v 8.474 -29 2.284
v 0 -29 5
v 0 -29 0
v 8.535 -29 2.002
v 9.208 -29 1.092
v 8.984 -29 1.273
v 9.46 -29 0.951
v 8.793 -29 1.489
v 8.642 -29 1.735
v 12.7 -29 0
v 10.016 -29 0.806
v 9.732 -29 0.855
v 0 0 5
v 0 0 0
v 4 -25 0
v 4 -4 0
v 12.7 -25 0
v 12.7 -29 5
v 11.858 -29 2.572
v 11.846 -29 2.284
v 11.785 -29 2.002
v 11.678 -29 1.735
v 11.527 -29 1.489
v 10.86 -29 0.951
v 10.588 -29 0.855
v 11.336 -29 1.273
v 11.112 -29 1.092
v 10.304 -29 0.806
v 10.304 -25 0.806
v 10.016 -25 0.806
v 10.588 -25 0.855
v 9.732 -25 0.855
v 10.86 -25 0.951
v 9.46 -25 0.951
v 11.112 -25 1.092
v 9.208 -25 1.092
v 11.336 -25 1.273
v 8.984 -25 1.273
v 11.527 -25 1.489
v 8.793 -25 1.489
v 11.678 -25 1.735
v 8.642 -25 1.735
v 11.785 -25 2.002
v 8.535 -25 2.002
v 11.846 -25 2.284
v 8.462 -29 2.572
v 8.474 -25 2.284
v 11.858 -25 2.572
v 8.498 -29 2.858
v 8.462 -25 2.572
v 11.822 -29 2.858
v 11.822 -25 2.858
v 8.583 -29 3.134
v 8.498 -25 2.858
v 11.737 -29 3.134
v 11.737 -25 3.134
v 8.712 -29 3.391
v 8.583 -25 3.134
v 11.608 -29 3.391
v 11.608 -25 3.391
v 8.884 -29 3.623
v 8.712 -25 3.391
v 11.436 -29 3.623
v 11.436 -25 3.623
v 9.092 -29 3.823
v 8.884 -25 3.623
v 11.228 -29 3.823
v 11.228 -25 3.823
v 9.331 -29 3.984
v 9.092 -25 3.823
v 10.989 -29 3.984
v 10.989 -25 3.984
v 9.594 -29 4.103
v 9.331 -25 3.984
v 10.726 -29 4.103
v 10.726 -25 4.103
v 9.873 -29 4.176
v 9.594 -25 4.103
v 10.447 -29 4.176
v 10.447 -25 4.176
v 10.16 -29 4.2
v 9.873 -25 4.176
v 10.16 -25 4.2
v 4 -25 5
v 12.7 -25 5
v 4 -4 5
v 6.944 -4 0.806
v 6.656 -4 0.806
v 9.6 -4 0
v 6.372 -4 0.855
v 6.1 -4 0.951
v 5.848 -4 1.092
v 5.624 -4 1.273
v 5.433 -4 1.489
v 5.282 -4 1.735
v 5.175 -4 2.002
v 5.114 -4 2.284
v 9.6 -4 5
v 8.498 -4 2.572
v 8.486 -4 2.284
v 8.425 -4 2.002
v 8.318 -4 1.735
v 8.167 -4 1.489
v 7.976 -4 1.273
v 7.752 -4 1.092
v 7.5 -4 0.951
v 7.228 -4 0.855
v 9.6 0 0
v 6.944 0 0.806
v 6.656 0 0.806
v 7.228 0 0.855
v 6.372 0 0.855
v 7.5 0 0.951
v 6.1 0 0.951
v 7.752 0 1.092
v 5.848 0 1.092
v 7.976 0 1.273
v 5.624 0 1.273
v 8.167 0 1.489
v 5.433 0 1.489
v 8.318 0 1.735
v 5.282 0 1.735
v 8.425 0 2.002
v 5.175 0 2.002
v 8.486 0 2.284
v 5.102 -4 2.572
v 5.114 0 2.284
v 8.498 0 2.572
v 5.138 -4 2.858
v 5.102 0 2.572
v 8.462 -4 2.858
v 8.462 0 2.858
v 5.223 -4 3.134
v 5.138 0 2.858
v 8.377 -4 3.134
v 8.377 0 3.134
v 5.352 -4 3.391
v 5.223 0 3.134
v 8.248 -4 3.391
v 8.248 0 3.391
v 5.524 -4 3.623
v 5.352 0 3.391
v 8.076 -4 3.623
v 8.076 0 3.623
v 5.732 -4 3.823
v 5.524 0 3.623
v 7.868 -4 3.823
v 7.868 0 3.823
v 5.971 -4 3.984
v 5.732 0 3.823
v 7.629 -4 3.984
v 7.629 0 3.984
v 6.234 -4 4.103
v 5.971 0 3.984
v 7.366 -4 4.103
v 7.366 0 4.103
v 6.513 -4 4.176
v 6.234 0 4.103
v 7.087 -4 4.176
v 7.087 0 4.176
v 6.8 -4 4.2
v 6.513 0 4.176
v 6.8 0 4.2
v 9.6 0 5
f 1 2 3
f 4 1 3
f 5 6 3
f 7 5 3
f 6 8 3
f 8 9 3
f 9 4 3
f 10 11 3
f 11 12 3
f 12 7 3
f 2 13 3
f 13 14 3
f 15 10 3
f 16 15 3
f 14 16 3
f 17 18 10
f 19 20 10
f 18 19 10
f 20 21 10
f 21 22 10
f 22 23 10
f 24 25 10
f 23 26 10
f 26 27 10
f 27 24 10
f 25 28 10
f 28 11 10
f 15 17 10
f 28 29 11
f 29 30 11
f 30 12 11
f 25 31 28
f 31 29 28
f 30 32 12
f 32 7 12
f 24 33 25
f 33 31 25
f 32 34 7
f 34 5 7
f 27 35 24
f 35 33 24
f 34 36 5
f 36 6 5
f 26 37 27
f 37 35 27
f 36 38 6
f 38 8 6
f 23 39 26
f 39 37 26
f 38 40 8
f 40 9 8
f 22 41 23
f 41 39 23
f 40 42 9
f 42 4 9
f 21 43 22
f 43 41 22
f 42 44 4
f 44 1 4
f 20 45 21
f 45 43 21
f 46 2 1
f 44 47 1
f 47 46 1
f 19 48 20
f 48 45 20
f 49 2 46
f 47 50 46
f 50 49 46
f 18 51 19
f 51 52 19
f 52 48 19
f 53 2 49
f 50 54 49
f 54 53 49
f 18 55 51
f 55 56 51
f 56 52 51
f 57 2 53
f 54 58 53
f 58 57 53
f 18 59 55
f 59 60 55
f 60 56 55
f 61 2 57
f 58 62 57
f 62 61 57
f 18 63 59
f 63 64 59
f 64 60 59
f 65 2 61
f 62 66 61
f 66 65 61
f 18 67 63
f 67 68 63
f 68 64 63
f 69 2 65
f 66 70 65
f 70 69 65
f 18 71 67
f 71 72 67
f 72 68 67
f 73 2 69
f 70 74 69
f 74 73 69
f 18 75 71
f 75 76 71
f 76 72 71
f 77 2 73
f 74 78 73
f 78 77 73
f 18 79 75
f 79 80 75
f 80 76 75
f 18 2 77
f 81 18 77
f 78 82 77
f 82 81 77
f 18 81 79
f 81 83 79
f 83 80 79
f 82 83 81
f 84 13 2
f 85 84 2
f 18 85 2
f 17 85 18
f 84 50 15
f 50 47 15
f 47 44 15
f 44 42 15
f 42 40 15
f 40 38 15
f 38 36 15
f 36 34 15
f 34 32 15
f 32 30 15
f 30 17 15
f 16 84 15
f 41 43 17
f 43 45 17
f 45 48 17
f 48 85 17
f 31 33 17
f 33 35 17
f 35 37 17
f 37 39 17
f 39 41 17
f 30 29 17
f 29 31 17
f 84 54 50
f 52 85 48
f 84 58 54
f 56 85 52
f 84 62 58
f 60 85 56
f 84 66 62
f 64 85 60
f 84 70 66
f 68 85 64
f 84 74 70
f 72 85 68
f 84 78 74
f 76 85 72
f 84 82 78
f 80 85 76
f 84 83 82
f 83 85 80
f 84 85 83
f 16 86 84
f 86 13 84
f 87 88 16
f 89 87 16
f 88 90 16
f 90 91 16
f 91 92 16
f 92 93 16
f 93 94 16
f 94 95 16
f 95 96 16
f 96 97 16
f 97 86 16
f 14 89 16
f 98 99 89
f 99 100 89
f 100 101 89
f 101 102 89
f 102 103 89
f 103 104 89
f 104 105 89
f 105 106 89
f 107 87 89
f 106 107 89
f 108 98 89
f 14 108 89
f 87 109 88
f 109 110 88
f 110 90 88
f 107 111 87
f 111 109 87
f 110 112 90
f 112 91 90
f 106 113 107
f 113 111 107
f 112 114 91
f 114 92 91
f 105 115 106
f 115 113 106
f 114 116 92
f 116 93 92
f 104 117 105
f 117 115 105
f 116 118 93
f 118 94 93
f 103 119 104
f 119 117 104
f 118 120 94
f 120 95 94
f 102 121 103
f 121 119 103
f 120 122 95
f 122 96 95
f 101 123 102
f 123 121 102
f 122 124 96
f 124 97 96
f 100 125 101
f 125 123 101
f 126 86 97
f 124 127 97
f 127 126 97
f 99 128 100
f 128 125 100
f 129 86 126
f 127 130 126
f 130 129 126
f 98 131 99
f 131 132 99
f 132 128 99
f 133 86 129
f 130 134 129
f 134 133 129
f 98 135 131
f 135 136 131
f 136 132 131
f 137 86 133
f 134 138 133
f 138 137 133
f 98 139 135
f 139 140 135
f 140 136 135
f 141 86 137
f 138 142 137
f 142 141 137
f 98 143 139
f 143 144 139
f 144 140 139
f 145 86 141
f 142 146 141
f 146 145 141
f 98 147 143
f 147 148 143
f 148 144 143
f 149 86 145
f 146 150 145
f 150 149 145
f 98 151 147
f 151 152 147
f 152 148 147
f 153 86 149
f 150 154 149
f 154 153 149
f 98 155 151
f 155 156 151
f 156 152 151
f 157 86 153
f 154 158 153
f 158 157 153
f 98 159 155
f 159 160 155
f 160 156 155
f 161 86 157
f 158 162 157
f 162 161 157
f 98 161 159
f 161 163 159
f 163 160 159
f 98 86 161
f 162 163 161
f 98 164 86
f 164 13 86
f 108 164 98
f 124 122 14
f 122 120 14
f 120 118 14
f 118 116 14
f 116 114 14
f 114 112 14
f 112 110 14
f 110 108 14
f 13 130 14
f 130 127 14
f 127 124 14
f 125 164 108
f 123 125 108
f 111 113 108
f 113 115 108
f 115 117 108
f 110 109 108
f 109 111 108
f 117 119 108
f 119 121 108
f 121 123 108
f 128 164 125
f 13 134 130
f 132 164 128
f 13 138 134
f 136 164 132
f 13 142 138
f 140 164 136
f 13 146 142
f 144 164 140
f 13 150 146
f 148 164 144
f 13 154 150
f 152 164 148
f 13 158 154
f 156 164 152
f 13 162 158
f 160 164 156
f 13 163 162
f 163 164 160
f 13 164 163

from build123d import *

# Parameters (mm, degrees)
RESSALTO_EXTRUS_O1_DEPTH    = 5
FURO_COM_FOLGA_DE_M32_D     = 3.4
FURO_COM_FOLGA_DE_M32_DEPTH = 4
FURO_COM_FOLGA_DE_M31_D     = 3.4
FURO_COM_FOLGA_DE_M31_DEPTH = 11.25
FURO_COM_FOLGA_DE_M31_TIP   = 1.021463052


with BuildPart() as part:
    # Esboço1 → Ressalto-extrusão1 (new body)
    with BuildSketch(Plane.XY):
        Polygon((12.7, -29), (0, -29), (0, 0), (9.6, 0), (9.6, -4), (4, -4), (4, -25), (12.7, -25), align=None)
    extrude(amount=RESSALTO_EXTRUS_O1_DEPTH)

    # Furo com folga de M32
    with Locations(Plane(origin=(0, -25, 0), x_dir=(1, 0, 0), z_dir=(0, 1, 0))):
        with Locations((10.16, -2.5)):
            Hole(FURO_COM_FOLGA_DE_M32_D / 2, depth=FURO_COM_FOLGA_DE_M32_DEPTH)

    # Furo com folga de M31
    with Locations(Plane(origin=(0, 0, 0), x_dir=(1, 0, 0), z_dir=(0, 1, 0))):
        with Locations((6.8, -2.5)):
            Hole(FURO_COM_FOLGA_DE_M31_D / 2, depth=FURO_COM_FOLGA_DE_M31_DEPTH)
            with Locations((0, 0, -(FURO_COM_FOLGA_DE_M31_DEPTH + FURO_COM_FOLGA_DE_M31_TIP / 2))):  # 118° drill point
                Cone(0, FURO_COM_FOLGA_DE_M31_D / 2, FURO_COM_FOLGA_DE_M31_TIP, mode=Mode.SUBTRACT)


solid = part.part
